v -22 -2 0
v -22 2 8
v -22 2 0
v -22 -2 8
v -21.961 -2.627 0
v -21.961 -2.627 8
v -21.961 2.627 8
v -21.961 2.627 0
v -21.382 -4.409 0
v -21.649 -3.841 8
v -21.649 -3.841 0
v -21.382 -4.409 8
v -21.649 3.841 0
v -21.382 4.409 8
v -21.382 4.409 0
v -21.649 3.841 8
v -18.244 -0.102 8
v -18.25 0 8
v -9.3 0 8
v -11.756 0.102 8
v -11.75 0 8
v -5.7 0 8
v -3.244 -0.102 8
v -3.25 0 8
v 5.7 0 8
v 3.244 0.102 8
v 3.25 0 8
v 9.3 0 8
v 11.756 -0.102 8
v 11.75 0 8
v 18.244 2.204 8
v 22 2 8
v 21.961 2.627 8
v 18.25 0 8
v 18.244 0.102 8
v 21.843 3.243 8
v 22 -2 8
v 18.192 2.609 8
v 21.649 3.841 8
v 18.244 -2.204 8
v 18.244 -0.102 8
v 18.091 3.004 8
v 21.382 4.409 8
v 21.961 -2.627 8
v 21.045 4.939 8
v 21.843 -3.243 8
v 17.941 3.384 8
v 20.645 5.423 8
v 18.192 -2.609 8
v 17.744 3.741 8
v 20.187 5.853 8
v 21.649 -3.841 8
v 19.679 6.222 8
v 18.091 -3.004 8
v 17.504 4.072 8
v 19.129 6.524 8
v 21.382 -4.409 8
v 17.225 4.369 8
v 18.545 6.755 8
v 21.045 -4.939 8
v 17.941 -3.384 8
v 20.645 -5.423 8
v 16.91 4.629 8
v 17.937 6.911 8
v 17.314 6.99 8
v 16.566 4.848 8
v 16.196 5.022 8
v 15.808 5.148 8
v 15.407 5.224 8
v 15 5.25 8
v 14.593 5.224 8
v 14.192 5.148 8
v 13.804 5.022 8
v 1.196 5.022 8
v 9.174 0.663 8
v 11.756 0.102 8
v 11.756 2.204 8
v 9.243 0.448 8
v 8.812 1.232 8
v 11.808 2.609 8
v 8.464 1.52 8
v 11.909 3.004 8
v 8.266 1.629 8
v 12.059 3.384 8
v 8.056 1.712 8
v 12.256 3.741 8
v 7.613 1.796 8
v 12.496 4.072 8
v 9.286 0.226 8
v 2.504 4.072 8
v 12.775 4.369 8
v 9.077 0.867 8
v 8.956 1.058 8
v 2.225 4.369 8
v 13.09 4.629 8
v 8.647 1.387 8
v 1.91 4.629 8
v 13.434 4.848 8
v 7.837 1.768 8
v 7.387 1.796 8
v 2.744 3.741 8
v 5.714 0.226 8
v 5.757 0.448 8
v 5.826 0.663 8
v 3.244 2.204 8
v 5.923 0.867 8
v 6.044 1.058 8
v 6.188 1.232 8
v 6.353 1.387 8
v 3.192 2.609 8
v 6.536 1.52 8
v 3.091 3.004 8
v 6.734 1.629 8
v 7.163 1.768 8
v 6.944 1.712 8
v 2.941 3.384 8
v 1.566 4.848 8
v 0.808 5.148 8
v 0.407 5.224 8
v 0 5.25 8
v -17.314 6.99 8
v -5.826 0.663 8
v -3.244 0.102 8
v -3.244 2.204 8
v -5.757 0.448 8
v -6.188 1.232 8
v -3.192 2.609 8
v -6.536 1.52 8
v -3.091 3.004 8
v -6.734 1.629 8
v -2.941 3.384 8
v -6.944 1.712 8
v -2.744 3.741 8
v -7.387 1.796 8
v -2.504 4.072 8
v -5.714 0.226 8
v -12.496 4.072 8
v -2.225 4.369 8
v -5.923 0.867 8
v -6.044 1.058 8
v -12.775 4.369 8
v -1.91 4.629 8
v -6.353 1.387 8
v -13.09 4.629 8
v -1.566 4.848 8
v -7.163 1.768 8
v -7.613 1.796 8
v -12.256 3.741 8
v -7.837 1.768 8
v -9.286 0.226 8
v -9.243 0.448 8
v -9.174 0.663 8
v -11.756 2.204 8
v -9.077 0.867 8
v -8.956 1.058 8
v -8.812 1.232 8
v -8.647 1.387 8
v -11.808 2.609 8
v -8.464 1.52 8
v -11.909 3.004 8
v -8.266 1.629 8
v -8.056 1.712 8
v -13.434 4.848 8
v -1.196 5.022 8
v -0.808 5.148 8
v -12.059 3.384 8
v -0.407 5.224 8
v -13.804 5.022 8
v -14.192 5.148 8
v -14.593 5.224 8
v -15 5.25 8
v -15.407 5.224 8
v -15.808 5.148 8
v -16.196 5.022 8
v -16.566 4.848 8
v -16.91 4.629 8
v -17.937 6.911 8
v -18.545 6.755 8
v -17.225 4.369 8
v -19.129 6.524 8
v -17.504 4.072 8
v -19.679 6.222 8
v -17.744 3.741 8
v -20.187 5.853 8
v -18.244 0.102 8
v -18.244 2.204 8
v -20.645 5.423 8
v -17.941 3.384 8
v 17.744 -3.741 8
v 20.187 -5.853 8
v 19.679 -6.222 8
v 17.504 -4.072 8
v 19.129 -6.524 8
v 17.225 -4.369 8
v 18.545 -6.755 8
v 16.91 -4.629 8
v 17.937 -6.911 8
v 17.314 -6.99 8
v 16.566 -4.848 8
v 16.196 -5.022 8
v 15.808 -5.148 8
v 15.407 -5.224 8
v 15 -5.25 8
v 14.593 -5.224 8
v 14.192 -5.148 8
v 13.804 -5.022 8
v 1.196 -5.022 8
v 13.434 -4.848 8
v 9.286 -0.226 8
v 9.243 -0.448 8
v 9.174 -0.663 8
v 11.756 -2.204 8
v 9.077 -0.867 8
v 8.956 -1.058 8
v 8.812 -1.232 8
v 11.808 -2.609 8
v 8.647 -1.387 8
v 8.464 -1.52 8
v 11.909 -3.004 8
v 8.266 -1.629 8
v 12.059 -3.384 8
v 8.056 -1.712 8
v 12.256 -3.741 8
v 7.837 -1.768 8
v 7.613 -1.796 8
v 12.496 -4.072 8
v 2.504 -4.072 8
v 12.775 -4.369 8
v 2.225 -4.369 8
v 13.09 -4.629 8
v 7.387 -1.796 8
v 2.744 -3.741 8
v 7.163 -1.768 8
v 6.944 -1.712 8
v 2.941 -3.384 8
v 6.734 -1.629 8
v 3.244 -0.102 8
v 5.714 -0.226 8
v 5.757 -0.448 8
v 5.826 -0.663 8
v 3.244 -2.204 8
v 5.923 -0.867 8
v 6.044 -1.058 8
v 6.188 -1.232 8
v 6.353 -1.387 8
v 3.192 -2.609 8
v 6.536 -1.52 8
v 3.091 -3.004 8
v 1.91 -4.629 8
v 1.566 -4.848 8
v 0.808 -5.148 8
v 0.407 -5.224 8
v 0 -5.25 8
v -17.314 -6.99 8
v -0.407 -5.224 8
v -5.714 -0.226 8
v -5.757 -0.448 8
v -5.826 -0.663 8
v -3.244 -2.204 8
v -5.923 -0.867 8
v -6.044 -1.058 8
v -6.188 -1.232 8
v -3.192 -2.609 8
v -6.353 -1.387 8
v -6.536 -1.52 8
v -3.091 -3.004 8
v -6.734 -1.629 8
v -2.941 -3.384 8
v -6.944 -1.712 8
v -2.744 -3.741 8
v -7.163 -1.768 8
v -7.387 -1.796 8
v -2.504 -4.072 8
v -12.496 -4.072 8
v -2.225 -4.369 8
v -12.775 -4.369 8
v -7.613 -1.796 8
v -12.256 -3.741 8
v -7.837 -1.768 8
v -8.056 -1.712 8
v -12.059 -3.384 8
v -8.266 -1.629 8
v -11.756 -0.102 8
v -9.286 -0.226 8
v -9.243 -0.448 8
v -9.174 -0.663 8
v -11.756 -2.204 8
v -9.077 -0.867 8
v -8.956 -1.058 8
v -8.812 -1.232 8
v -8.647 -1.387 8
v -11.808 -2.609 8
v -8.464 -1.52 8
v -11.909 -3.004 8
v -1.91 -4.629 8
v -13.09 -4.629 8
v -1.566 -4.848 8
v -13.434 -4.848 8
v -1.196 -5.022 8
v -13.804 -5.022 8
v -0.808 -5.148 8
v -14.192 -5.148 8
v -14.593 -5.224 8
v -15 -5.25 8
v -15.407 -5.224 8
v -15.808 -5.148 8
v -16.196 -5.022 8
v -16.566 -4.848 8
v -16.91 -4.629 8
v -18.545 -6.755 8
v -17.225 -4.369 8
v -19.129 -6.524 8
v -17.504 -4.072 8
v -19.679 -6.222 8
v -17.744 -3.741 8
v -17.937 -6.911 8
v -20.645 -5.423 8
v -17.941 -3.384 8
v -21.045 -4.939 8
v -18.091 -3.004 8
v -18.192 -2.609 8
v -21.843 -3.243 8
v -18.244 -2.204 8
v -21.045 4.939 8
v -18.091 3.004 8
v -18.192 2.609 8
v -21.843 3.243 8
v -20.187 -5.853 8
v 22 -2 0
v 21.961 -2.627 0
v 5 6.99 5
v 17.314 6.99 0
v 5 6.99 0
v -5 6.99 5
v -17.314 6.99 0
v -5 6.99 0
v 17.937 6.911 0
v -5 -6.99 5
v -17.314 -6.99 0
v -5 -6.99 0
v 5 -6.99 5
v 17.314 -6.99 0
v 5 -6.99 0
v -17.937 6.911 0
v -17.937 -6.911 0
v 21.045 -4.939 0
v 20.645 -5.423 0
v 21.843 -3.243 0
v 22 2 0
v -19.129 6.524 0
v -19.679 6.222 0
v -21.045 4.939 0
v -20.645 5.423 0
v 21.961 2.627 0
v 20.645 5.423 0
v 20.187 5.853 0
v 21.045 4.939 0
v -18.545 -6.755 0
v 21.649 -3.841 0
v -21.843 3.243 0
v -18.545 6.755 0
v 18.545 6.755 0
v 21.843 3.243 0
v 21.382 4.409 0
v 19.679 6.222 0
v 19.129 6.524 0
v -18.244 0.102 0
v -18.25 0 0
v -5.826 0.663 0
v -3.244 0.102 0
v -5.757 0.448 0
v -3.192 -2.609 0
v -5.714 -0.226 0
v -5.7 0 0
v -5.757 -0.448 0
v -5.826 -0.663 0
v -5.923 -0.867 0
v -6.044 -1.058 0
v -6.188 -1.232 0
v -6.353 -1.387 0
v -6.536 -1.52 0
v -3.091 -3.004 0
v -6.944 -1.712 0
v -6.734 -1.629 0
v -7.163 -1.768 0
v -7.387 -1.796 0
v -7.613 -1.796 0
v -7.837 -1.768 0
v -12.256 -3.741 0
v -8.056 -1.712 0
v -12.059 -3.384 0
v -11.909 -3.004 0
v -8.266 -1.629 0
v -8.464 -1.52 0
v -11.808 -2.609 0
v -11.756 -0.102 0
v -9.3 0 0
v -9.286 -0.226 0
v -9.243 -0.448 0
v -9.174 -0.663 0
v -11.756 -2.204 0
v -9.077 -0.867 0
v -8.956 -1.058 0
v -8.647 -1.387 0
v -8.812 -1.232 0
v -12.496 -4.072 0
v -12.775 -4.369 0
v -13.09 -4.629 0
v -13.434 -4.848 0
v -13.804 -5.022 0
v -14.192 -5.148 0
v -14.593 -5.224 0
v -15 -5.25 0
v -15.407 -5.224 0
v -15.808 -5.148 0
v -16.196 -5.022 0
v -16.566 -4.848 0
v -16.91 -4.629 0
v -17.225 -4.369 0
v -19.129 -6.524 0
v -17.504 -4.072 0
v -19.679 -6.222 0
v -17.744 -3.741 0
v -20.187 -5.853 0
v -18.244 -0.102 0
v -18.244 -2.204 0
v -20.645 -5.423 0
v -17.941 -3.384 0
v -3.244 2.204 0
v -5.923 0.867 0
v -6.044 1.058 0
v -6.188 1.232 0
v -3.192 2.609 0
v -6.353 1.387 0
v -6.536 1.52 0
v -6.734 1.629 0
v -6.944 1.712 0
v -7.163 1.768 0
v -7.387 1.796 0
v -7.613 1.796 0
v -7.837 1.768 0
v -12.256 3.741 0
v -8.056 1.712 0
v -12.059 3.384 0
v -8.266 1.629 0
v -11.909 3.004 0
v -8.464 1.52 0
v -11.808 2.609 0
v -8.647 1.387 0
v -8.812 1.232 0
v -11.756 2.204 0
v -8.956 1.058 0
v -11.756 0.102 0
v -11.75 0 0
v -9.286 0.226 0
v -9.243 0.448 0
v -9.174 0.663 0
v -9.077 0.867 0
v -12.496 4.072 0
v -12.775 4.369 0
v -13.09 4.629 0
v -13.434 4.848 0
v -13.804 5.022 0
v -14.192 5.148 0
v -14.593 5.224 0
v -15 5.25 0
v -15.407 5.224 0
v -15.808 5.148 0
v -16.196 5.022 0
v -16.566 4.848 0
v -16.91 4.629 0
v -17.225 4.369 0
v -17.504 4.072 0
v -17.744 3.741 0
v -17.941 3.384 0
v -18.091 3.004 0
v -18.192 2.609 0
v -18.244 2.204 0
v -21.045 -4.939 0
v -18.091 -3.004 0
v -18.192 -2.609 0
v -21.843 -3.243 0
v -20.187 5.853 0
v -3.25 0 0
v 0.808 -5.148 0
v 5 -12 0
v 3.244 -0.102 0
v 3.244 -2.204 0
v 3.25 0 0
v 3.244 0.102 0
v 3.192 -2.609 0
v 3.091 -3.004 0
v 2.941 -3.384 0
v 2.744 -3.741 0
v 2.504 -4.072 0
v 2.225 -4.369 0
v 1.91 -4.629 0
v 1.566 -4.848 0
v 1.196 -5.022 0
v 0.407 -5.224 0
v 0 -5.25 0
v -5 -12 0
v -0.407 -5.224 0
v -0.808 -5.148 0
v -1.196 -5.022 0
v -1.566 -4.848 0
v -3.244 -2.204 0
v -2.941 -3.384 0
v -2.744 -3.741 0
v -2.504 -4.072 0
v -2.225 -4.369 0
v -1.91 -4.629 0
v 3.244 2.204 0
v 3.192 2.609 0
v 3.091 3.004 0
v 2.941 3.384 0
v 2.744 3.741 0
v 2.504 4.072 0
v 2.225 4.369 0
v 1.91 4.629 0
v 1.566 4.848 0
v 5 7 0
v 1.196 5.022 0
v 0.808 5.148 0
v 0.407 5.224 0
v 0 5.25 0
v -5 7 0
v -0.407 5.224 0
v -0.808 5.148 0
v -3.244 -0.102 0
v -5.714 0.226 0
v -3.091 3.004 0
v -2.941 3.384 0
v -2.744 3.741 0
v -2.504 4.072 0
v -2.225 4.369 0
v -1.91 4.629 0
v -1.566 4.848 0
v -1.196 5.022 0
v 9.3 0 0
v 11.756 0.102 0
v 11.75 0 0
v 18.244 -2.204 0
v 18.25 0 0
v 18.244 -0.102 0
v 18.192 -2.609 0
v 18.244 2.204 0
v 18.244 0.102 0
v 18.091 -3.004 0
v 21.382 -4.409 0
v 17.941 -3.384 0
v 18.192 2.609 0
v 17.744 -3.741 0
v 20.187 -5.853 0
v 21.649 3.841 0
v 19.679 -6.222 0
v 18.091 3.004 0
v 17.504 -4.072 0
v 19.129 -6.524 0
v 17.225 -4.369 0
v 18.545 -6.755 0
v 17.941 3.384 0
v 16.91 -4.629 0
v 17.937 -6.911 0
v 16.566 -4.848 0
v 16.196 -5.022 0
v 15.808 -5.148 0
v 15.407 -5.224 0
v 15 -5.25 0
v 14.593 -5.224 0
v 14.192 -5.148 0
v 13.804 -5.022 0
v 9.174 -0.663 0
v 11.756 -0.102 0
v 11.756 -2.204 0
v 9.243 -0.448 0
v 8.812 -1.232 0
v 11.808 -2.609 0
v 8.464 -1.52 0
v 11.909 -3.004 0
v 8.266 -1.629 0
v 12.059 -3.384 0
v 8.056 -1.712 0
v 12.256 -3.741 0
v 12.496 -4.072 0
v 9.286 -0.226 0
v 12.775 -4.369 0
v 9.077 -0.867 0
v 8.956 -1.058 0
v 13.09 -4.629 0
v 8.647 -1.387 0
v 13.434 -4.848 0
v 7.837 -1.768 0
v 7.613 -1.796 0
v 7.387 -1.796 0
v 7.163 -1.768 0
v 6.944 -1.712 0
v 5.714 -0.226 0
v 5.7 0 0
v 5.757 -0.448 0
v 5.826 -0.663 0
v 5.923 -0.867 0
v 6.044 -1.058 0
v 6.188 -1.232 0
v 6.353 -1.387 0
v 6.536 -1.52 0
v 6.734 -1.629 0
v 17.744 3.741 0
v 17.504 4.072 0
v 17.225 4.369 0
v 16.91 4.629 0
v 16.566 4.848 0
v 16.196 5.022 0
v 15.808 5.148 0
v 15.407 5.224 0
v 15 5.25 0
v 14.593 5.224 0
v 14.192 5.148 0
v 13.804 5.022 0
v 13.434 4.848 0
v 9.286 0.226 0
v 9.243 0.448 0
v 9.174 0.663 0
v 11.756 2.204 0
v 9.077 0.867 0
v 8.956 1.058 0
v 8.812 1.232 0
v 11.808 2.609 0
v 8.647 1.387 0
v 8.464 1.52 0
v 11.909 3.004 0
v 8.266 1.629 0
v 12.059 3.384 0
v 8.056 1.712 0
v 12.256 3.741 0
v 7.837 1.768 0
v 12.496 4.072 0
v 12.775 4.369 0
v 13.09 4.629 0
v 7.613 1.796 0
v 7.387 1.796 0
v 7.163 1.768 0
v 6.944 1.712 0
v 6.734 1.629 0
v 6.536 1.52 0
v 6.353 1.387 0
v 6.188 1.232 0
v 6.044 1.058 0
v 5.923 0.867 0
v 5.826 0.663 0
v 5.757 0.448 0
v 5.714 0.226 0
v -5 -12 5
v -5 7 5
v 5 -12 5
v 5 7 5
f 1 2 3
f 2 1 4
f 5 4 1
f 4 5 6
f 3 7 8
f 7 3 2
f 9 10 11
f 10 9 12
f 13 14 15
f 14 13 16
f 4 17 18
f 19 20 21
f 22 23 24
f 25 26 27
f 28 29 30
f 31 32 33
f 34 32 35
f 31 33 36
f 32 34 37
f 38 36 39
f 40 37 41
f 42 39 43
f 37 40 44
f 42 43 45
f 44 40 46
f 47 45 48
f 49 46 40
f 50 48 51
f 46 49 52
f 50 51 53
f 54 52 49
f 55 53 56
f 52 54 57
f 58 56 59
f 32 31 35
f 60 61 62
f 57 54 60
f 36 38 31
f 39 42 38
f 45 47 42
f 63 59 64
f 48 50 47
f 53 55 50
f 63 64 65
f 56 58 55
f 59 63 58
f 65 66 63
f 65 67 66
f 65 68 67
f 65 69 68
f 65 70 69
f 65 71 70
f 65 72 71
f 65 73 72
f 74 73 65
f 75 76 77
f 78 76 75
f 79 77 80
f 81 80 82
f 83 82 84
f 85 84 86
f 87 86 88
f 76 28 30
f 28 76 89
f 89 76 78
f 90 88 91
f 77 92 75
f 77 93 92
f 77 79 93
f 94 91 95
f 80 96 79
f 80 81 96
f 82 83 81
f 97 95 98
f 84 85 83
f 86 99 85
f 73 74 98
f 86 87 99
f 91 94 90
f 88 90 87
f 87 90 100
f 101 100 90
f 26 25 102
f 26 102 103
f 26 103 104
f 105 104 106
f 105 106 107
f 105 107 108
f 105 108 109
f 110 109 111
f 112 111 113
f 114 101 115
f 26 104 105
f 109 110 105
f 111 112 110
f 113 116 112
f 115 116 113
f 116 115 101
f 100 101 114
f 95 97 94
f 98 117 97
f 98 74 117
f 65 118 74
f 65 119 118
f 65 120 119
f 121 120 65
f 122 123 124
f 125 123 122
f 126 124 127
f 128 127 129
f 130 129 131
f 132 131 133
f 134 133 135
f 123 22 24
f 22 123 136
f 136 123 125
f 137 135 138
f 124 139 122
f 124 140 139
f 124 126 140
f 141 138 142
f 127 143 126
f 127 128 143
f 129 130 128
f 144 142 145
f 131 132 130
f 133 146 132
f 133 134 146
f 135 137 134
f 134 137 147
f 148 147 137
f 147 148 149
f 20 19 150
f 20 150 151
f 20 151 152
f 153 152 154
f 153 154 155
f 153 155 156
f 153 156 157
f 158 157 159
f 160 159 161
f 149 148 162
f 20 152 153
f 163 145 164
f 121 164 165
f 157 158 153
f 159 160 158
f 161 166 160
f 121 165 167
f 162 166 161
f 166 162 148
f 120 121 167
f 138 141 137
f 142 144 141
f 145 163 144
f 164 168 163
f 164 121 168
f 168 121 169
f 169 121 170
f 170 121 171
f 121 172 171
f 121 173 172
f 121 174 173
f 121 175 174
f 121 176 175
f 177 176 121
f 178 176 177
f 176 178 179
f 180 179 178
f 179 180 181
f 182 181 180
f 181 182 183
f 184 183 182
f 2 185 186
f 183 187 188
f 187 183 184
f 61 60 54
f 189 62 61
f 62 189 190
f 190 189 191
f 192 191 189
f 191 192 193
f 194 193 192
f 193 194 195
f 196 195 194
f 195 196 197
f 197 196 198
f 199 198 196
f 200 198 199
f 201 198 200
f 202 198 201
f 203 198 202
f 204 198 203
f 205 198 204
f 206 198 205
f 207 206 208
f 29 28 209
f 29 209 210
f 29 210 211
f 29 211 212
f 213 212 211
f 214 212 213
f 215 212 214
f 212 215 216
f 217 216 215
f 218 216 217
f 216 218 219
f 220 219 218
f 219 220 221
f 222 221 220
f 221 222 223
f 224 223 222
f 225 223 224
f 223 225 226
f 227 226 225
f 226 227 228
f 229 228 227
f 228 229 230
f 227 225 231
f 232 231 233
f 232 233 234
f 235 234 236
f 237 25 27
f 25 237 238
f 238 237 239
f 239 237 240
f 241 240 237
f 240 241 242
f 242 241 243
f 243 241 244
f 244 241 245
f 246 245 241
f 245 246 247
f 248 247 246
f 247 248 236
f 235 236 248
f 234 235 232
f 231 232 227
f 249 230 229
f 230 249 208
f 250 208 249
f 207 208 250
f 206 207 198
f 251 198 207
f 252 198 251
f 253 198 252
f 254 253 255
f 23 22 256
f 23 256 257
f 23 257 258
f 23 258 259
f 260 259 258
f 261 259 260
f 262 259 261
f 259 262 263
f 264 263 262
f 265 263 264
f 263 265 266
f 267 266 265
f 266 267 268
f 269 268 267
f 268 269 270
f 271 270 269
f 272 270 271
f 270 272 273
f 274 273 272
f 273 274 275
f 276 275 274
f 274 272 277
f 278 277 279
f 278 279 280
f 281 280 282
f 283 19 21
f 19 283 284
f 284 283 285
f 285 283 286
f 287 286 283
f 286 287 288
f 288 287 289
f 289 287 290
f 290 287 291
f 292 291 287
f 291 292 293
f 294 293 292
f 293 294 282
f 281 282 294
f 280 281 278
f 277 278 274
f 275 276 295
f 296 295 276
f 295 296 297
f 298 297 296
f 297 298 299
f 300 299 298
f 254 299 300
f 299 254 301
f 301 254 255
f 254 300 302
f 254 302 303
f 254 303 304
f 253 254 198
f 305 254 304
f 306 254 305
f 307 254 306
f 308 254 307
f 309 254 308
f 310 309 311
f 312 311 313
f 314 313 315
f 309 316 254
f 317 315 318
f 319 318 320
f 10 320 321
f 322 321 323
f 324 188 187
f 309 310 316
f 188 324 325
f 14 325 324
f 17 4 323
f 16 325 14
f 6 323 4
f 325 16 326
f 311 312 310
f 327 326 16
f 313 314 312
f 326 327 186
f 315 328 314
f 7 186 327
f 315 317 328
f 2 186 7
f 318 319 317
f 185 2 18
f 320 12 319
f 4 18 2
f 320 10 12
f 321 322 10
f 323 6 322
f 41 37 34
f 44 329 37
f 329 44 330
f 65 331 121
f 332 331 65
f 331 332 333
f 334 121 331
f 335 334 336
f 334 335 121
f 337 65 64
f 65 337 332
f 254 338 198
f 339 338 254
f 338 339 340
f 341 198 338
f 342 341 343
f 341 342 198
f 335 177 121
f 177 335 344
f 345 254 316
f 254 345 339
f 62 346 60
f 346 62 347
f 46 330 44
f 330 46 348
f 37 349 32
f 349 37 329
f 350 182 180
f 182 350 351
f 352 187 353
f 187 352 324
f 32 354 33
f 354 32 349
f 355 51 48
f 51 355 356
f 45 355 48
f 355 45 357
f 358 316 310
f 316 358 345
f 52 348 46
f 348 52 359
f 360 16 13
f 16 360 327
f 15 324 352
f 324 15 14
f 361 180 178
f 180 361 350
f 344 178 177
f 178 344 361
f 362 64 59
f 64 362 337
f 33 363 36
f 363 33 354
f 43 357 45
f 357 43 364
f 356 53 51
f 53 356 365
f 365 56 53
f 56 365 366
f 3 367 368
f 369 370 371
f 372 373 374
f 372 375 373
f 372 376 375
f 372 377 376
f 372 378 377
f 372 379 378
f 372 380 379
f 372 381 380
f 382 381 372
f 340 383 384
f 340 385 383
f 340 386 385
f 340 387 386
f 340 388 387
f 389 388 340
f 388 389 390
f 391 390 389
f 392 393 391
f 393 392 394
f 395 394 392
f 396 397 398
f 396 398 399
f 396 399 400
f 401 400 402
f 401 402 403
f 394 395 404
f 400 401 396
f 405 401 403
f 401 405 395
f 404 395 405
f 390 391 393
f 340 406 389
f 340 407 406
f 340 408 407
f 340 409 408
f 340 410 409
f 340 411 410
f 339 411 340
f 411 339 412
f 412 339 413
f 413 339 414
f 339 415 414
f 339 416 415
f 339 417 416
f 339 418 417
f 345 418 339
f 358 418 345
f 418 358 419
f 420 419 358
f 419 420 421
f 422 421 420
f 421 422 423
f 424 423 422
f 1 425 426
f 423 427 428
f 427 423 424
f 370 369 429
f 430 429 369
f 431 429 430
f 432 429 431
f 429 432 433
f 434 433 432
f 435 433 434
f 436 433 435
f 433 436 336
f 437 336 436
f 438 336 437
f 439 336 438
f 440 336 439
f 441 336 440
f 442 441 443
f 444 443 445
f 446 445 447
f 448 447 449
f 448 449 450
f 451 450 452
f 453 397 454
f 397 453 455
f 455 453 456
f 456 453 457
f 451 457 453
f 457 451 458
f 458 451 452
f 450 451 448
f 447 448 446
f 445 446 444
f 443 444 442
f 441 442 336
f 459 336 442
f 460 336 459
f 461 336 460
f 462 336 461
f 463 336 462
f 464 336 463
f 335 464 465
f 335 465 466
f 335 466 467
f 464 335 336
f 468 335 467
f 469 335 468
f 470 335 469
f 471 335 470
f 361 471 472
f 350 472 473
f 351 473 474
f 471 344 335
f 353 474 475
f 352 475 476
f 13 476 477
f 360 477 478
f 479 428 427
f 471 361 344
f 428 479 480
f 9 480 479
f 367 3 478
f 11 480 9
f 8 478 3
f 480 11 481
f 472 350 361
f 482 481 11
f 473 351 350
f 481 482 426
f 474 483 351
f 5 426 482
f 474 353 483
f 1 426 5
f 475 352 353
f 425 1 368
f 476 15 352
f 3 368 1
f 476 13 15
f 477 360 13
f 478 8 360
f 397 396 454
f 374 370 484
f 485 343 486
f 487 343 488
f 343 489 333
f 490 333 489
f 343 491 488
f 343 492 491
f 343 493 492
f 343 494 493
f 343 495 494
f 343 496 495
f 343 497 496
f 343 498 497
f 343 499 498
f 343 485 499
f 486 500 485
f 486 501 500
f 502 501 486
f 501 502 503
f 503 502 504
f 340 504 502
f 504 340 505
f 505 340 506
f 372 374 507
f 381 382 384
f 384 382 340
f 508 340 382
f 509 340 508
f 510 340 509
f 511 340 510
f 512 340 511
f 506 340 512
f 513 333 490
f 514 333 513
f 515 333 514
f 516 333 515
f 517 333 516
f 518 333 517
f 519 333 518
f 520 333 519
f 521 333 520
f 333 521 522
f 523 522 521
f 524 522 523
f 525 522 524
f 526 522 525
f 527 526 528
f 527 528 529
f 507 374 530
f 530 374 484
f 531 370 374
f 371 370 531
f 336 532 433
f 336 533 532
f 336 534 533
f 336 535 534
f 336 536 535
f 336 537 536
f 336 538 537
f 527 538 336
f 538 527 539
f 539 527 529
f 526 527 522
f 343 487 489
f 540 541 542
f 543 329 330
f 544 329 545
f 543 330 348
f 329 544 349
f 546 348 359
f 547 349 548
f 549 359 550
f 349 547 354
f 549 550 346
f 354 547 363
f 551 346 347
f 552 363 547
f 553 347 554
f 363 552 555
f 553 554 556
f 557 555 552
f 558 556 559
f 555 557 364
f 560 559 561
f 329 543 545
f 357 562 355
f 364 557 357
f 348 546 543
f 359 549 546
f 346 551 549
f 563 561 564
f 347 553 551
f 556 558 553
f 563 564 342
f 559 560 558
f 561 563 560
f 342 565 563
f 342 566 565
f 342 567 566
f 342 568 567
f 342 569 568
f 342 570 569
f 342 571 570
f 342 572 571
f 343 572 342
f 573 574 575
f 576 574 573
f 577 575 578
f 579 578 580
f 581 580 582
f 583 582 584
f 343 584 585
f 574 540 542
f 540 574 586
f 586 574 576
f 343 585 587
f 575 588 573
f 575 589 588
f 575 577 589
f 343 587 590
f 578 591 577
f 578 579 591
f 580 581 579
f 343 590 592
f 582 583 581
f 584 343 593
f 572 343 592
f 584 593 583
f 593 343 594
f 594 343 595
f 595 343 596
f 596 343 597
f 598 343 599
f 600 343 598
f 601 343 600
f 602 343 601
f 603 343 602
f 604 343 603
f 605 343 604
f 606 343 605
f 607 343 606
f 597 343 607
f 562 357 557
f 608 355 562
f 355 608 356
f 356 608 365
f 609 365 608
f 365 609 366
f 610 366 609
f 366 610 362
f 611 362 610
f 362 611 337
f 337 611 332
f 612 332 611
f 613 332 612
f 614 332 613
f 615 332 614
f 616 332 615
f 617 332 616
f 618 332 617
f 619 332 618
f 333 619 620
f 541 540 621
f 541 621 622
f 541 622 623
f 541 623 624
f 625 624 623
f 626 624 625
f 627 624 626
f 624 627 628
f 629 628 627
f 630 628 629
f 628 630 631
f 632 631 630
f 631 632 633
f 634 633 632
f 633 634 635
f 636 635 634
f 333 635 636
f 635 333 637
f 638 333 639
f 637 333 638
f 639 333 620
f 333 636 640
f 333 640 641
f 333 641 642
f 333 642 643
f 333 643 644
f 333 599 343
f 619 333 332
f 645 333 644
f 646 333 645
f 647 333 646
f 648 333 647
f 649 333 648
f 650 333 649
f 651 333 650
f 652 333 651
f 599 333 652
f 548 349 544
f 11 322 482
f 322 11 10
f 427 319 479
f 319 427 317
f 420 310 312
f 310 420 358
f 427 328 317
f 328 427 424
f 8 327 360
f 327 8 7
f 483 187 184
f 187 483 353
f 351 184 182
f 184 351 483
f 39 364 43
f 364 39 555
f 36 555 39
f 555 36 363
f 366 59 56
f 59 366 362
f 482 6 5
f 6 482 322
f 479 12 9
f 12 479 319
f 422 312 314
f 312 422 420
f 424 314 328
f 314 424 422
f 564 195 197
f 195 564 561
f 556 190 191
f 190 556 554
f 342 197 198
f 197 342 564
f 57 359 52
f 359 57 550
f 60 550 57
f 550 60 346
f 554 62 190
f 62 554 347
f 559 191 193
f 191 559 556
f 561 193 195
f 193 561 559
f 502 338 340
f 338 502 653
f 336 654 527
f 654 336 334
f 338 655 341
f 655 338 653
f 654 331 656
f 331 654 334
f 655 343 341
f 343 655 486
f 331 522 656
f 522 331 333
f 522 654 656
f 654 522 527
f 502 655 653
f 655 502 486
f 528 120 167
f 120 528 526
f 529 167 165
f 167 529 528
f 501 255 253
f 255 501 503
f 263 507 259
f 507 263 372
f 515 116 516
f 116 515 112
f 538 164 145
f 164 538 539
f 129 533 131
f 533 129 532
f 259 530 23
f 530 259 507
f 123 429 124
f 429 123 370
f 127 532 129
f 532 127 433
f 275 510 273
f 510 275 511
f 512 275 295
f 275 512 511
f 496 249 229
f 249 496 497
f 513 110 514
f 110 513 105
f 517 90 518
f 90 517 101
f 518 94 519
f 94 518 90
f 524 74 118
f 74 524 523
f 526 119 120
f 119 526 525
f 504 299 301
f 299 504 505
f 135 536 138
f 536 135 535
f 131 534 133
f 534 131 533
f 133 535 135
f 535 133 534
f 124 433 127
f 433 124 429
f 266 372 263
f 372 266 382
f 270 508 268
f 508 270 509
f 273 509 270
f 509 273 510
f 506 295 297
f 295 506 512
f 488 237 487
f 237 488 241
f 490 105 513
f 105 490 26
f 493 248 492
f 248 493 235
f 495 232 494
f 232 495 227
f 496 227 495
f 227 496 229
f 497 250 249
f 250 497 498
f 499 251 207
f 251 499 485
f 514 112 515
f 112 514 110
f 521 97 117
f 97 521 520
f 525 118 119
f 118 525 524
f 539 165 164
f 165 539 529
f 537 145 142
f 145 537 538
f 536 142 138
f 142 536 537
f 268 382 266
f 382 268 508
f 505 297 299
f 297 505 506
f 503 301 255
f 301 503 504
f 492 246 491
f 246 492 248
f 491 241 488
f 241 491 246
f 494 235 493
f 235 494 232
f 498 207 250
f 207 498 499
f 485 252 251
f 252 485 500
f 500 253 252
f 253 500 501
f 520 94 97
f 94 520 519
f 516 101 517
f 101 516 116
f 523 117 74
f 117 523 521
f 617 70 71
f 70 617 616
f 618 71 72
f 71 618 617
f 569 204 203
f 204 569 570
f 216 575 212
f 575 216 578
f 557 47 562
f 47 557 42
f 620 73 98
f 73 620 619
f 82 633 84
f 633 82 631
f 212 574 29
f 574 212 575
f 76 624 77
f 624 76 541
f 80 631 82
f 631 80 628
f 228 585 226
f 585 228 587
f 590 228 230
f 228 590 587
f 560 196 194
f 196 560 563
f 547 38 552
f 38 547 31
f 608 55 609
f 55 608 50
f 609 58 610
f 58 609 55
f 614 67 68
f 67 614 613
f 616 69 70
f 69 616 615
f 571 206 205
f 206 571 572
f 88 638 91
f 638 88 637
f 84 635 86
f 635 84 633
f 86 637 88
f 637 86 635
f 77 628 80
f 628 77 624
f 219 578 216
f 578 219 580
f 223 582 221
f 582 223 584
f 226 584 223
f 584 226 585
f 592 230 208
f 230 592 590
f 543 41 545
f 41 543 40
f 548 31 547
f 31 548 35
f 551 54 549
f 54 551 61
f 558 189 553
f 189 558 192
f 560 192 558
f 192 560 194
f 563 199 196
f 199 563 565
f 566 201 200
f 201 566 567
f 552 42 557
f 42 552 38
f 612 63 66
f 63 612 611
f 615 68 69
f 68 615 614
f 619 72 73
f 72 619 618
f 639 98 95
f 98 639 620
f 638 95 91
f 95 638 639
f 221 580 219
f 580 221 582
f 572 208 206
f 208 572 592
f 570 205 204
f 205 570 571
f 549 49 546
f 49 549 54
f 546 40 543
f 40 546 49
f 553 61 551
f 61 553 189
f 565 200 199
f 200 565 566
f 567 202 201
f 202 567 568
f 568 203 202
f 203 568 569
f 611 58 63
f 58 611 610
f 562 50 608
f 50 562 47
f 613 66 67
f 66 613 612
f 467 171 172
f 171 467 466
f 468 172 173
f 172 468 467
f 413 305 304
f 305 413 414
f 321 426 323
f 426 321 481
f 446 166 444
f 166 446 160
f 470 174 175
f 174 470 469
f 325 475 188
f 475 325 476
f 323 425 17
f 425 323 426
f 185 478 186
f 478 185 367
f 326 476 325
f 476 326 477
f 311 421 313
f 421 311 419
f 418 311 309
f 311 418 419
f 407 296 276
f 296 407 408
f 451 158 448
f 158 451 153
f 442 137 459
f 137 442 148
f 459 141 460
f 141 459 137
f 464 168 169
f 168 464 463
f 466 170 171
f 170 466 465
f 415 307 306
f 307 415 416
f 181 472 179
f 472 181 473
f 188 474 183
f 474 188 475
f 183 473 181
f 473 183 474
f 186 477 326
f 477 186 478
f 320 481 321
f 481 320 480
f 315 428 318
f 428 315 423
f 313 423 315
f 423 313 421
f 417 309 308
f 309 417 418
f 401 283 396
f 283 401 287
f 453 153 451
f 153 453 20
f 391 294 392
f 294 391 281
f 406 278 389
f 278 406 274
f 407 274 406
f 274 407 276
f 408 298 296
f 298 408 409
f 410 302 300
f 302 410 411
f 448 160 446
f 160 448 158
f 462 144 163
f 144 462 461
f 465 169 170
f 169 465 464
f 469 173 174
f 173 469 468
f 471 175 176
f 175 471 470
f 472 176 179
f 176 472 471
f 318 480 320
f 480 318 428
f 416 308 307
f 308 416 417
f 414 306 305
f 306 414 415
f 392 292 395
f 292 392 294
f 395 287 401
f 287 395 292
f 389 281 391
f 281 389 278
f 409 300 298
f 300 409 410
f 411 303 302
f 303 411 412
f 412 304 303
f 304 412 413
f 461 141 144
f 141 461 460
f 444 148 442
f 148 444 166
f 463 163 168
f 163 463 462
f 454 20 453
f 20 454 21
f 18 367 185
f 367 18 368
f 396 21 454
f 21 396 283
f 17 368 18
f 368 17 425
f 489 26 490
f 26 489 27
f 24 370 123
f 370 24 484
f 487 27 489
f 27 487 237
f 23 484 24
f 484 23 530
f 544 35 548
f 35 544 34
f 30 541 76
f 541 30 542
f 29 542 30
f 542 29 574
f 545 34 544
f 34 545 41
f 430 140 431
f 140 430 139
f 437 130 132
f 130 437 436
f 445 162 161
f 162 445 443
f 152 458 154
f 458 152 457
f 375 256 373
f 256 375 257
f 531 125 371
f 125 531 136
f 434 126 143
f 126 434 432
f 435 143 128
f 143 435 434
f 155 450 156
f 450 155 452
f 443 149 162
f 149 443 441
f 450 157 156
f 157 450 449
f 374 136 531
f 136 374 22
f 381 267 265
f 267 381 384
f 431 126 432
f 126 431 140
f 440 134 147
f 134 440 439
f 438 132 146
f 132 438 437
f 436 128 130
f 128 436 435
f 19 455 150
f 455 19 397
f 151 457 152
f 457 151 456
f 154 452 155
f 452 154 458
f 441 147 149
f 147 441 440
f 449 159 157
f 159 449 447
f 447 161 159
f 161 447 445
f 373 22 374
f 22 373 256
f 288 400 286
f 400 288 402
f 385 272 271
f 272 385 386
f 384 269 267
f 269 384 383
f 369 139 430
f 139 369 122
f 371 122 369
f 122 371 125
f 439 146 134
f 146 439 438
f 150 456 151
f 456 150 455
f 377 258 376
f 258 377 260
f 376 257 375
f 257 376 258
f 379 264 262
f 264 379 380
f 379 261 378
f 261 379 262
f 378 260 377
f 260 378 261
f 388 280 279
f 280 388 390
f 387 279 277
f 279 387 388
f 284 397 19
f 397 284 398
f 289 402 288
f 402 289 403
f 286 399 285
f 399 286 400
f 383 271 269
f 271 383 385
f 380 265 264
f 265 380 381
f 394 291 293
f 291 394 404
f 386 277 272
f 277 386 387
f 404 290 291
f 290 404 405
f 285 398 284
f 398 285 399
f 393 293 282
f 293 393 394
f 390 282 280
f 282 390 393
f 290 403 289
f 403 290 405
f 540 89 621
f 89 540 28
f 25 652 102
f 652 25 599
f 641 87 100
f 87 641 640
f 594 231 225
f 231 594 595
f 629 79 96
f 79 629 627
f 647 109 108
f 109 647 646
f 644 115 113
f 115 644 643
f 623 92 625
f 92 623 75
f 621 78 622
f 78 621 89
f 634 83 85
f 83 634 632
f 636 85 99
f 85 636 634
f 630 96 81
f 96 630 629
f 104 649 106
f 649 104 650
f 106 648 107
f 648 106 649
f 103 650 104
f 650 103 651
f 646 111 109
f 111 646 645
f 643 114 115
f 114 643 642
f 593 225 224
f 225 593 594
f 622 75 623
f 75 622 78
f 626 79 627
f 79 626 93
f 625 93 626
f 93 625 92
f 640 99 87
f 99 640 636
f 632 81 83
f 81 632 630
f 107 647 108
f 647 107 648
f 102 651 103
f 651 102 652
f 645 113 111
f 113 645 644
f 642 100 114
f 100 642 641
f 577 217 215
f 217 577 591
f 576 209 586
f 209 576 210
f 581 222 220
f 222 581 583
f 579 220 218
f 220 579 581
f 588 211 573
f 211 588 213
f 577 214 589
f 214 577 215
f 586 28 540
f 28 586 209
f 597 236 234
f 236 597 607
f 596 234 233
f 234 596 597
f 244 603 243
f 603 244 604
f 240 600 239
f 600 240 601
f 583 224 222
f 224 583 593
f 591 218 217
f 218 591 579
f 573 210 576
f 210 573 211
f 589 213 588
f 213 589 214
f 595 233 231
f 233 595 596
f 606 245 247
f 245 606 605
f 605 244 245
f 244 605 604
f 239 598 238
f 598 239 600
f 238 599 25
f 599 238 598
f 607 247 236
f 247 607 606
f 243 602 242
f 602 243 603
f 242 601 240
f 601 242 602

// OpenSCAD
$fn = 50;


difference() {
	union() {
		hull() {
			translate(v = [-17.0000000000, 2.0000000000, 0]) {
				cylinder(h = 8, r = 5);
			}
			translate(v = [17.0000000000, 2.0000000000, 0]) {
				cylinder(h = 8, r = 5);
			}
			translate(v = [-17.0000000000, -2.0000000000, 0]) {
				cylinder(h = 8, r = 5);
			}
			translate(v = [17.0000000000, -2.0000000000, 0]) {
				cylinder(h = 8, r = 5);
			}
		}
		translate(v = [-5.0000000000, -12.0000000000, 0]) {
			cube(size = [10, 19, 5]);
		}
	}
	union() {
		translate(v = [0, 0, 0.0000000000]) {
			rotate(a = [0, 0, 90]) {
				difference() {
					union() {
						hull() {
							translate(v = [2.0000000000, 0, 0]) {
								cylinder(h = 8, r = 3.2500000000, r1 = 3.2500000000, r2 = 3.2500000000);
							}
							translate(v = [-2.0000000000, 0, 0]) {
								cylinder(h = 8, r = 3.2500000000, r1 = 3.2500000000, r2 = 3.2500000000);
							}
						}
					}
					union();
				}
			}
		}
		translate(v = [15, 0, 0.0000000000]) {
			rotate(a = [0, 0, 90]) {
				difference() {
					union() {
						hull() {
							translate(v = [2.0000000000, 0, 0]) {
								cylinder(h = 8, r = 3.2500000000, r1 = 3.2500000000, r2 = 3.2500000000);
							}
							translate(v = [-2.0000000000, 0, 0]) {
								cylinder(h = 8, r = 3.2500000000, r1 = 3.2500000000, r2 = 3.2500000000);
							}
						}
					}
					union();
				}
			}
		}
		translate(v = [-15, 0, 0.0000000000]) {
			rotate(a = [0, 0, 90]) {
				difference() {
					union() {
						hull() {
							translate(v = [2.0000000000, 0, 0]) {
								cylinder(h = 8, r = 3.2500000000, r1 = 3.2500000000, r2 = 3.2500000000);
							}
							translate(v = [-2.0000000000, 0, 0]) {
								cylinder(h = 8, r = 3.2500000000, r1 = 3.2500000000, r2 = 3.2500000000);
							}
						}
					}
					union();
				}
			}
		}
		translate(v = [-15.0000000000, 0.0000000000, -100.0000000000]) {
			cylinder(h = 200, r = 3.2500000000);
		}
		translate(v = [0.0000000000, 0.0000000000, -100.0000000000]) {
			cylinder(h = 200, r = 3.2500000000);
		}
		translate(v = [15.0000000000, 0.0000000000, -100.0000000000]) {
			cylinder(h = 200, r = 3.2500000000);
		}
		translate(v = [-15.0000000000, 0.0000000000, -100.0000000000]) {
			cylinder(h = 200, r = 1.8000000000);
		}
		translate(v = [-7.5000000000, 0.0000000000, -100.0000000000]) {
			cylinder(h = 200, r = 1.8000000000);
		}
		translate(v = [0.0000000000, 0.0000000000, -100.0000000000]) {
			cylinder(h = 200, r = 1.8000000000);
		}
		translate(v = [7.5000000000, 0.0000000000, -100.0000000000]) {
			cylinder(h = 200, r = 1.8000000000);
		}
		translate(v = [15.0000000000, 0.0000000000, -100.0000000000]) {
			cylinder(h = 200, r = 1.8000000000);
		}
		translate(v = [-15.0000000000, 0.0000000000, -100.0000000000]) {
			cylinder(h = 200, r = 1.8000000000);
		}
		translate(v = [-7.5000000000, 0.0000000000, -100.0000000000]) {
			cylinder(h = 200, r = 1.8000000000);
		}
		translate(v = [0.0000000000, 0.0000000000, -100.0000000000]) {
			cylinder(h = 200, r = 1.8000000000);
		}
		translate(v = [7.5000000000, 0.0000000000, -100.0000000000]) {
			cylinder(h = 200, r = 1.8000000000);
		}
		translate(v = [15.0000000000, 0.0000000000, -100.0000000000]) {
			cylinder(h = 200, r = 1.8000000000);
		}
		translate(v = [-15.0000000000, 0.0000000000, -100.0000000000]) {
			cylinder(h = 200, r = 1.8000000000);
		}
		translate(v = [-7.5000000000, 0.0000000000, -100.0000000000]) {
			cylinder(h = 200, r = 1.8000000000);
		}
		translate(v = [0.0000000000, 0.0000000000, -100.0000000000]) {
			cylinder(h = 200, r = 1.8000000000);
		}
		translate(v = [7.5000000000, 0.0000000000, -100.0000000000]) {
			cylinder(h = 200, r = 1.8000000000);
		}
		translate(v = [15.0000000000, 0.0000000000, -100.0000000000]) {
			cylinder(h = 200, r = 1.8000000000);
		}
	}
}
